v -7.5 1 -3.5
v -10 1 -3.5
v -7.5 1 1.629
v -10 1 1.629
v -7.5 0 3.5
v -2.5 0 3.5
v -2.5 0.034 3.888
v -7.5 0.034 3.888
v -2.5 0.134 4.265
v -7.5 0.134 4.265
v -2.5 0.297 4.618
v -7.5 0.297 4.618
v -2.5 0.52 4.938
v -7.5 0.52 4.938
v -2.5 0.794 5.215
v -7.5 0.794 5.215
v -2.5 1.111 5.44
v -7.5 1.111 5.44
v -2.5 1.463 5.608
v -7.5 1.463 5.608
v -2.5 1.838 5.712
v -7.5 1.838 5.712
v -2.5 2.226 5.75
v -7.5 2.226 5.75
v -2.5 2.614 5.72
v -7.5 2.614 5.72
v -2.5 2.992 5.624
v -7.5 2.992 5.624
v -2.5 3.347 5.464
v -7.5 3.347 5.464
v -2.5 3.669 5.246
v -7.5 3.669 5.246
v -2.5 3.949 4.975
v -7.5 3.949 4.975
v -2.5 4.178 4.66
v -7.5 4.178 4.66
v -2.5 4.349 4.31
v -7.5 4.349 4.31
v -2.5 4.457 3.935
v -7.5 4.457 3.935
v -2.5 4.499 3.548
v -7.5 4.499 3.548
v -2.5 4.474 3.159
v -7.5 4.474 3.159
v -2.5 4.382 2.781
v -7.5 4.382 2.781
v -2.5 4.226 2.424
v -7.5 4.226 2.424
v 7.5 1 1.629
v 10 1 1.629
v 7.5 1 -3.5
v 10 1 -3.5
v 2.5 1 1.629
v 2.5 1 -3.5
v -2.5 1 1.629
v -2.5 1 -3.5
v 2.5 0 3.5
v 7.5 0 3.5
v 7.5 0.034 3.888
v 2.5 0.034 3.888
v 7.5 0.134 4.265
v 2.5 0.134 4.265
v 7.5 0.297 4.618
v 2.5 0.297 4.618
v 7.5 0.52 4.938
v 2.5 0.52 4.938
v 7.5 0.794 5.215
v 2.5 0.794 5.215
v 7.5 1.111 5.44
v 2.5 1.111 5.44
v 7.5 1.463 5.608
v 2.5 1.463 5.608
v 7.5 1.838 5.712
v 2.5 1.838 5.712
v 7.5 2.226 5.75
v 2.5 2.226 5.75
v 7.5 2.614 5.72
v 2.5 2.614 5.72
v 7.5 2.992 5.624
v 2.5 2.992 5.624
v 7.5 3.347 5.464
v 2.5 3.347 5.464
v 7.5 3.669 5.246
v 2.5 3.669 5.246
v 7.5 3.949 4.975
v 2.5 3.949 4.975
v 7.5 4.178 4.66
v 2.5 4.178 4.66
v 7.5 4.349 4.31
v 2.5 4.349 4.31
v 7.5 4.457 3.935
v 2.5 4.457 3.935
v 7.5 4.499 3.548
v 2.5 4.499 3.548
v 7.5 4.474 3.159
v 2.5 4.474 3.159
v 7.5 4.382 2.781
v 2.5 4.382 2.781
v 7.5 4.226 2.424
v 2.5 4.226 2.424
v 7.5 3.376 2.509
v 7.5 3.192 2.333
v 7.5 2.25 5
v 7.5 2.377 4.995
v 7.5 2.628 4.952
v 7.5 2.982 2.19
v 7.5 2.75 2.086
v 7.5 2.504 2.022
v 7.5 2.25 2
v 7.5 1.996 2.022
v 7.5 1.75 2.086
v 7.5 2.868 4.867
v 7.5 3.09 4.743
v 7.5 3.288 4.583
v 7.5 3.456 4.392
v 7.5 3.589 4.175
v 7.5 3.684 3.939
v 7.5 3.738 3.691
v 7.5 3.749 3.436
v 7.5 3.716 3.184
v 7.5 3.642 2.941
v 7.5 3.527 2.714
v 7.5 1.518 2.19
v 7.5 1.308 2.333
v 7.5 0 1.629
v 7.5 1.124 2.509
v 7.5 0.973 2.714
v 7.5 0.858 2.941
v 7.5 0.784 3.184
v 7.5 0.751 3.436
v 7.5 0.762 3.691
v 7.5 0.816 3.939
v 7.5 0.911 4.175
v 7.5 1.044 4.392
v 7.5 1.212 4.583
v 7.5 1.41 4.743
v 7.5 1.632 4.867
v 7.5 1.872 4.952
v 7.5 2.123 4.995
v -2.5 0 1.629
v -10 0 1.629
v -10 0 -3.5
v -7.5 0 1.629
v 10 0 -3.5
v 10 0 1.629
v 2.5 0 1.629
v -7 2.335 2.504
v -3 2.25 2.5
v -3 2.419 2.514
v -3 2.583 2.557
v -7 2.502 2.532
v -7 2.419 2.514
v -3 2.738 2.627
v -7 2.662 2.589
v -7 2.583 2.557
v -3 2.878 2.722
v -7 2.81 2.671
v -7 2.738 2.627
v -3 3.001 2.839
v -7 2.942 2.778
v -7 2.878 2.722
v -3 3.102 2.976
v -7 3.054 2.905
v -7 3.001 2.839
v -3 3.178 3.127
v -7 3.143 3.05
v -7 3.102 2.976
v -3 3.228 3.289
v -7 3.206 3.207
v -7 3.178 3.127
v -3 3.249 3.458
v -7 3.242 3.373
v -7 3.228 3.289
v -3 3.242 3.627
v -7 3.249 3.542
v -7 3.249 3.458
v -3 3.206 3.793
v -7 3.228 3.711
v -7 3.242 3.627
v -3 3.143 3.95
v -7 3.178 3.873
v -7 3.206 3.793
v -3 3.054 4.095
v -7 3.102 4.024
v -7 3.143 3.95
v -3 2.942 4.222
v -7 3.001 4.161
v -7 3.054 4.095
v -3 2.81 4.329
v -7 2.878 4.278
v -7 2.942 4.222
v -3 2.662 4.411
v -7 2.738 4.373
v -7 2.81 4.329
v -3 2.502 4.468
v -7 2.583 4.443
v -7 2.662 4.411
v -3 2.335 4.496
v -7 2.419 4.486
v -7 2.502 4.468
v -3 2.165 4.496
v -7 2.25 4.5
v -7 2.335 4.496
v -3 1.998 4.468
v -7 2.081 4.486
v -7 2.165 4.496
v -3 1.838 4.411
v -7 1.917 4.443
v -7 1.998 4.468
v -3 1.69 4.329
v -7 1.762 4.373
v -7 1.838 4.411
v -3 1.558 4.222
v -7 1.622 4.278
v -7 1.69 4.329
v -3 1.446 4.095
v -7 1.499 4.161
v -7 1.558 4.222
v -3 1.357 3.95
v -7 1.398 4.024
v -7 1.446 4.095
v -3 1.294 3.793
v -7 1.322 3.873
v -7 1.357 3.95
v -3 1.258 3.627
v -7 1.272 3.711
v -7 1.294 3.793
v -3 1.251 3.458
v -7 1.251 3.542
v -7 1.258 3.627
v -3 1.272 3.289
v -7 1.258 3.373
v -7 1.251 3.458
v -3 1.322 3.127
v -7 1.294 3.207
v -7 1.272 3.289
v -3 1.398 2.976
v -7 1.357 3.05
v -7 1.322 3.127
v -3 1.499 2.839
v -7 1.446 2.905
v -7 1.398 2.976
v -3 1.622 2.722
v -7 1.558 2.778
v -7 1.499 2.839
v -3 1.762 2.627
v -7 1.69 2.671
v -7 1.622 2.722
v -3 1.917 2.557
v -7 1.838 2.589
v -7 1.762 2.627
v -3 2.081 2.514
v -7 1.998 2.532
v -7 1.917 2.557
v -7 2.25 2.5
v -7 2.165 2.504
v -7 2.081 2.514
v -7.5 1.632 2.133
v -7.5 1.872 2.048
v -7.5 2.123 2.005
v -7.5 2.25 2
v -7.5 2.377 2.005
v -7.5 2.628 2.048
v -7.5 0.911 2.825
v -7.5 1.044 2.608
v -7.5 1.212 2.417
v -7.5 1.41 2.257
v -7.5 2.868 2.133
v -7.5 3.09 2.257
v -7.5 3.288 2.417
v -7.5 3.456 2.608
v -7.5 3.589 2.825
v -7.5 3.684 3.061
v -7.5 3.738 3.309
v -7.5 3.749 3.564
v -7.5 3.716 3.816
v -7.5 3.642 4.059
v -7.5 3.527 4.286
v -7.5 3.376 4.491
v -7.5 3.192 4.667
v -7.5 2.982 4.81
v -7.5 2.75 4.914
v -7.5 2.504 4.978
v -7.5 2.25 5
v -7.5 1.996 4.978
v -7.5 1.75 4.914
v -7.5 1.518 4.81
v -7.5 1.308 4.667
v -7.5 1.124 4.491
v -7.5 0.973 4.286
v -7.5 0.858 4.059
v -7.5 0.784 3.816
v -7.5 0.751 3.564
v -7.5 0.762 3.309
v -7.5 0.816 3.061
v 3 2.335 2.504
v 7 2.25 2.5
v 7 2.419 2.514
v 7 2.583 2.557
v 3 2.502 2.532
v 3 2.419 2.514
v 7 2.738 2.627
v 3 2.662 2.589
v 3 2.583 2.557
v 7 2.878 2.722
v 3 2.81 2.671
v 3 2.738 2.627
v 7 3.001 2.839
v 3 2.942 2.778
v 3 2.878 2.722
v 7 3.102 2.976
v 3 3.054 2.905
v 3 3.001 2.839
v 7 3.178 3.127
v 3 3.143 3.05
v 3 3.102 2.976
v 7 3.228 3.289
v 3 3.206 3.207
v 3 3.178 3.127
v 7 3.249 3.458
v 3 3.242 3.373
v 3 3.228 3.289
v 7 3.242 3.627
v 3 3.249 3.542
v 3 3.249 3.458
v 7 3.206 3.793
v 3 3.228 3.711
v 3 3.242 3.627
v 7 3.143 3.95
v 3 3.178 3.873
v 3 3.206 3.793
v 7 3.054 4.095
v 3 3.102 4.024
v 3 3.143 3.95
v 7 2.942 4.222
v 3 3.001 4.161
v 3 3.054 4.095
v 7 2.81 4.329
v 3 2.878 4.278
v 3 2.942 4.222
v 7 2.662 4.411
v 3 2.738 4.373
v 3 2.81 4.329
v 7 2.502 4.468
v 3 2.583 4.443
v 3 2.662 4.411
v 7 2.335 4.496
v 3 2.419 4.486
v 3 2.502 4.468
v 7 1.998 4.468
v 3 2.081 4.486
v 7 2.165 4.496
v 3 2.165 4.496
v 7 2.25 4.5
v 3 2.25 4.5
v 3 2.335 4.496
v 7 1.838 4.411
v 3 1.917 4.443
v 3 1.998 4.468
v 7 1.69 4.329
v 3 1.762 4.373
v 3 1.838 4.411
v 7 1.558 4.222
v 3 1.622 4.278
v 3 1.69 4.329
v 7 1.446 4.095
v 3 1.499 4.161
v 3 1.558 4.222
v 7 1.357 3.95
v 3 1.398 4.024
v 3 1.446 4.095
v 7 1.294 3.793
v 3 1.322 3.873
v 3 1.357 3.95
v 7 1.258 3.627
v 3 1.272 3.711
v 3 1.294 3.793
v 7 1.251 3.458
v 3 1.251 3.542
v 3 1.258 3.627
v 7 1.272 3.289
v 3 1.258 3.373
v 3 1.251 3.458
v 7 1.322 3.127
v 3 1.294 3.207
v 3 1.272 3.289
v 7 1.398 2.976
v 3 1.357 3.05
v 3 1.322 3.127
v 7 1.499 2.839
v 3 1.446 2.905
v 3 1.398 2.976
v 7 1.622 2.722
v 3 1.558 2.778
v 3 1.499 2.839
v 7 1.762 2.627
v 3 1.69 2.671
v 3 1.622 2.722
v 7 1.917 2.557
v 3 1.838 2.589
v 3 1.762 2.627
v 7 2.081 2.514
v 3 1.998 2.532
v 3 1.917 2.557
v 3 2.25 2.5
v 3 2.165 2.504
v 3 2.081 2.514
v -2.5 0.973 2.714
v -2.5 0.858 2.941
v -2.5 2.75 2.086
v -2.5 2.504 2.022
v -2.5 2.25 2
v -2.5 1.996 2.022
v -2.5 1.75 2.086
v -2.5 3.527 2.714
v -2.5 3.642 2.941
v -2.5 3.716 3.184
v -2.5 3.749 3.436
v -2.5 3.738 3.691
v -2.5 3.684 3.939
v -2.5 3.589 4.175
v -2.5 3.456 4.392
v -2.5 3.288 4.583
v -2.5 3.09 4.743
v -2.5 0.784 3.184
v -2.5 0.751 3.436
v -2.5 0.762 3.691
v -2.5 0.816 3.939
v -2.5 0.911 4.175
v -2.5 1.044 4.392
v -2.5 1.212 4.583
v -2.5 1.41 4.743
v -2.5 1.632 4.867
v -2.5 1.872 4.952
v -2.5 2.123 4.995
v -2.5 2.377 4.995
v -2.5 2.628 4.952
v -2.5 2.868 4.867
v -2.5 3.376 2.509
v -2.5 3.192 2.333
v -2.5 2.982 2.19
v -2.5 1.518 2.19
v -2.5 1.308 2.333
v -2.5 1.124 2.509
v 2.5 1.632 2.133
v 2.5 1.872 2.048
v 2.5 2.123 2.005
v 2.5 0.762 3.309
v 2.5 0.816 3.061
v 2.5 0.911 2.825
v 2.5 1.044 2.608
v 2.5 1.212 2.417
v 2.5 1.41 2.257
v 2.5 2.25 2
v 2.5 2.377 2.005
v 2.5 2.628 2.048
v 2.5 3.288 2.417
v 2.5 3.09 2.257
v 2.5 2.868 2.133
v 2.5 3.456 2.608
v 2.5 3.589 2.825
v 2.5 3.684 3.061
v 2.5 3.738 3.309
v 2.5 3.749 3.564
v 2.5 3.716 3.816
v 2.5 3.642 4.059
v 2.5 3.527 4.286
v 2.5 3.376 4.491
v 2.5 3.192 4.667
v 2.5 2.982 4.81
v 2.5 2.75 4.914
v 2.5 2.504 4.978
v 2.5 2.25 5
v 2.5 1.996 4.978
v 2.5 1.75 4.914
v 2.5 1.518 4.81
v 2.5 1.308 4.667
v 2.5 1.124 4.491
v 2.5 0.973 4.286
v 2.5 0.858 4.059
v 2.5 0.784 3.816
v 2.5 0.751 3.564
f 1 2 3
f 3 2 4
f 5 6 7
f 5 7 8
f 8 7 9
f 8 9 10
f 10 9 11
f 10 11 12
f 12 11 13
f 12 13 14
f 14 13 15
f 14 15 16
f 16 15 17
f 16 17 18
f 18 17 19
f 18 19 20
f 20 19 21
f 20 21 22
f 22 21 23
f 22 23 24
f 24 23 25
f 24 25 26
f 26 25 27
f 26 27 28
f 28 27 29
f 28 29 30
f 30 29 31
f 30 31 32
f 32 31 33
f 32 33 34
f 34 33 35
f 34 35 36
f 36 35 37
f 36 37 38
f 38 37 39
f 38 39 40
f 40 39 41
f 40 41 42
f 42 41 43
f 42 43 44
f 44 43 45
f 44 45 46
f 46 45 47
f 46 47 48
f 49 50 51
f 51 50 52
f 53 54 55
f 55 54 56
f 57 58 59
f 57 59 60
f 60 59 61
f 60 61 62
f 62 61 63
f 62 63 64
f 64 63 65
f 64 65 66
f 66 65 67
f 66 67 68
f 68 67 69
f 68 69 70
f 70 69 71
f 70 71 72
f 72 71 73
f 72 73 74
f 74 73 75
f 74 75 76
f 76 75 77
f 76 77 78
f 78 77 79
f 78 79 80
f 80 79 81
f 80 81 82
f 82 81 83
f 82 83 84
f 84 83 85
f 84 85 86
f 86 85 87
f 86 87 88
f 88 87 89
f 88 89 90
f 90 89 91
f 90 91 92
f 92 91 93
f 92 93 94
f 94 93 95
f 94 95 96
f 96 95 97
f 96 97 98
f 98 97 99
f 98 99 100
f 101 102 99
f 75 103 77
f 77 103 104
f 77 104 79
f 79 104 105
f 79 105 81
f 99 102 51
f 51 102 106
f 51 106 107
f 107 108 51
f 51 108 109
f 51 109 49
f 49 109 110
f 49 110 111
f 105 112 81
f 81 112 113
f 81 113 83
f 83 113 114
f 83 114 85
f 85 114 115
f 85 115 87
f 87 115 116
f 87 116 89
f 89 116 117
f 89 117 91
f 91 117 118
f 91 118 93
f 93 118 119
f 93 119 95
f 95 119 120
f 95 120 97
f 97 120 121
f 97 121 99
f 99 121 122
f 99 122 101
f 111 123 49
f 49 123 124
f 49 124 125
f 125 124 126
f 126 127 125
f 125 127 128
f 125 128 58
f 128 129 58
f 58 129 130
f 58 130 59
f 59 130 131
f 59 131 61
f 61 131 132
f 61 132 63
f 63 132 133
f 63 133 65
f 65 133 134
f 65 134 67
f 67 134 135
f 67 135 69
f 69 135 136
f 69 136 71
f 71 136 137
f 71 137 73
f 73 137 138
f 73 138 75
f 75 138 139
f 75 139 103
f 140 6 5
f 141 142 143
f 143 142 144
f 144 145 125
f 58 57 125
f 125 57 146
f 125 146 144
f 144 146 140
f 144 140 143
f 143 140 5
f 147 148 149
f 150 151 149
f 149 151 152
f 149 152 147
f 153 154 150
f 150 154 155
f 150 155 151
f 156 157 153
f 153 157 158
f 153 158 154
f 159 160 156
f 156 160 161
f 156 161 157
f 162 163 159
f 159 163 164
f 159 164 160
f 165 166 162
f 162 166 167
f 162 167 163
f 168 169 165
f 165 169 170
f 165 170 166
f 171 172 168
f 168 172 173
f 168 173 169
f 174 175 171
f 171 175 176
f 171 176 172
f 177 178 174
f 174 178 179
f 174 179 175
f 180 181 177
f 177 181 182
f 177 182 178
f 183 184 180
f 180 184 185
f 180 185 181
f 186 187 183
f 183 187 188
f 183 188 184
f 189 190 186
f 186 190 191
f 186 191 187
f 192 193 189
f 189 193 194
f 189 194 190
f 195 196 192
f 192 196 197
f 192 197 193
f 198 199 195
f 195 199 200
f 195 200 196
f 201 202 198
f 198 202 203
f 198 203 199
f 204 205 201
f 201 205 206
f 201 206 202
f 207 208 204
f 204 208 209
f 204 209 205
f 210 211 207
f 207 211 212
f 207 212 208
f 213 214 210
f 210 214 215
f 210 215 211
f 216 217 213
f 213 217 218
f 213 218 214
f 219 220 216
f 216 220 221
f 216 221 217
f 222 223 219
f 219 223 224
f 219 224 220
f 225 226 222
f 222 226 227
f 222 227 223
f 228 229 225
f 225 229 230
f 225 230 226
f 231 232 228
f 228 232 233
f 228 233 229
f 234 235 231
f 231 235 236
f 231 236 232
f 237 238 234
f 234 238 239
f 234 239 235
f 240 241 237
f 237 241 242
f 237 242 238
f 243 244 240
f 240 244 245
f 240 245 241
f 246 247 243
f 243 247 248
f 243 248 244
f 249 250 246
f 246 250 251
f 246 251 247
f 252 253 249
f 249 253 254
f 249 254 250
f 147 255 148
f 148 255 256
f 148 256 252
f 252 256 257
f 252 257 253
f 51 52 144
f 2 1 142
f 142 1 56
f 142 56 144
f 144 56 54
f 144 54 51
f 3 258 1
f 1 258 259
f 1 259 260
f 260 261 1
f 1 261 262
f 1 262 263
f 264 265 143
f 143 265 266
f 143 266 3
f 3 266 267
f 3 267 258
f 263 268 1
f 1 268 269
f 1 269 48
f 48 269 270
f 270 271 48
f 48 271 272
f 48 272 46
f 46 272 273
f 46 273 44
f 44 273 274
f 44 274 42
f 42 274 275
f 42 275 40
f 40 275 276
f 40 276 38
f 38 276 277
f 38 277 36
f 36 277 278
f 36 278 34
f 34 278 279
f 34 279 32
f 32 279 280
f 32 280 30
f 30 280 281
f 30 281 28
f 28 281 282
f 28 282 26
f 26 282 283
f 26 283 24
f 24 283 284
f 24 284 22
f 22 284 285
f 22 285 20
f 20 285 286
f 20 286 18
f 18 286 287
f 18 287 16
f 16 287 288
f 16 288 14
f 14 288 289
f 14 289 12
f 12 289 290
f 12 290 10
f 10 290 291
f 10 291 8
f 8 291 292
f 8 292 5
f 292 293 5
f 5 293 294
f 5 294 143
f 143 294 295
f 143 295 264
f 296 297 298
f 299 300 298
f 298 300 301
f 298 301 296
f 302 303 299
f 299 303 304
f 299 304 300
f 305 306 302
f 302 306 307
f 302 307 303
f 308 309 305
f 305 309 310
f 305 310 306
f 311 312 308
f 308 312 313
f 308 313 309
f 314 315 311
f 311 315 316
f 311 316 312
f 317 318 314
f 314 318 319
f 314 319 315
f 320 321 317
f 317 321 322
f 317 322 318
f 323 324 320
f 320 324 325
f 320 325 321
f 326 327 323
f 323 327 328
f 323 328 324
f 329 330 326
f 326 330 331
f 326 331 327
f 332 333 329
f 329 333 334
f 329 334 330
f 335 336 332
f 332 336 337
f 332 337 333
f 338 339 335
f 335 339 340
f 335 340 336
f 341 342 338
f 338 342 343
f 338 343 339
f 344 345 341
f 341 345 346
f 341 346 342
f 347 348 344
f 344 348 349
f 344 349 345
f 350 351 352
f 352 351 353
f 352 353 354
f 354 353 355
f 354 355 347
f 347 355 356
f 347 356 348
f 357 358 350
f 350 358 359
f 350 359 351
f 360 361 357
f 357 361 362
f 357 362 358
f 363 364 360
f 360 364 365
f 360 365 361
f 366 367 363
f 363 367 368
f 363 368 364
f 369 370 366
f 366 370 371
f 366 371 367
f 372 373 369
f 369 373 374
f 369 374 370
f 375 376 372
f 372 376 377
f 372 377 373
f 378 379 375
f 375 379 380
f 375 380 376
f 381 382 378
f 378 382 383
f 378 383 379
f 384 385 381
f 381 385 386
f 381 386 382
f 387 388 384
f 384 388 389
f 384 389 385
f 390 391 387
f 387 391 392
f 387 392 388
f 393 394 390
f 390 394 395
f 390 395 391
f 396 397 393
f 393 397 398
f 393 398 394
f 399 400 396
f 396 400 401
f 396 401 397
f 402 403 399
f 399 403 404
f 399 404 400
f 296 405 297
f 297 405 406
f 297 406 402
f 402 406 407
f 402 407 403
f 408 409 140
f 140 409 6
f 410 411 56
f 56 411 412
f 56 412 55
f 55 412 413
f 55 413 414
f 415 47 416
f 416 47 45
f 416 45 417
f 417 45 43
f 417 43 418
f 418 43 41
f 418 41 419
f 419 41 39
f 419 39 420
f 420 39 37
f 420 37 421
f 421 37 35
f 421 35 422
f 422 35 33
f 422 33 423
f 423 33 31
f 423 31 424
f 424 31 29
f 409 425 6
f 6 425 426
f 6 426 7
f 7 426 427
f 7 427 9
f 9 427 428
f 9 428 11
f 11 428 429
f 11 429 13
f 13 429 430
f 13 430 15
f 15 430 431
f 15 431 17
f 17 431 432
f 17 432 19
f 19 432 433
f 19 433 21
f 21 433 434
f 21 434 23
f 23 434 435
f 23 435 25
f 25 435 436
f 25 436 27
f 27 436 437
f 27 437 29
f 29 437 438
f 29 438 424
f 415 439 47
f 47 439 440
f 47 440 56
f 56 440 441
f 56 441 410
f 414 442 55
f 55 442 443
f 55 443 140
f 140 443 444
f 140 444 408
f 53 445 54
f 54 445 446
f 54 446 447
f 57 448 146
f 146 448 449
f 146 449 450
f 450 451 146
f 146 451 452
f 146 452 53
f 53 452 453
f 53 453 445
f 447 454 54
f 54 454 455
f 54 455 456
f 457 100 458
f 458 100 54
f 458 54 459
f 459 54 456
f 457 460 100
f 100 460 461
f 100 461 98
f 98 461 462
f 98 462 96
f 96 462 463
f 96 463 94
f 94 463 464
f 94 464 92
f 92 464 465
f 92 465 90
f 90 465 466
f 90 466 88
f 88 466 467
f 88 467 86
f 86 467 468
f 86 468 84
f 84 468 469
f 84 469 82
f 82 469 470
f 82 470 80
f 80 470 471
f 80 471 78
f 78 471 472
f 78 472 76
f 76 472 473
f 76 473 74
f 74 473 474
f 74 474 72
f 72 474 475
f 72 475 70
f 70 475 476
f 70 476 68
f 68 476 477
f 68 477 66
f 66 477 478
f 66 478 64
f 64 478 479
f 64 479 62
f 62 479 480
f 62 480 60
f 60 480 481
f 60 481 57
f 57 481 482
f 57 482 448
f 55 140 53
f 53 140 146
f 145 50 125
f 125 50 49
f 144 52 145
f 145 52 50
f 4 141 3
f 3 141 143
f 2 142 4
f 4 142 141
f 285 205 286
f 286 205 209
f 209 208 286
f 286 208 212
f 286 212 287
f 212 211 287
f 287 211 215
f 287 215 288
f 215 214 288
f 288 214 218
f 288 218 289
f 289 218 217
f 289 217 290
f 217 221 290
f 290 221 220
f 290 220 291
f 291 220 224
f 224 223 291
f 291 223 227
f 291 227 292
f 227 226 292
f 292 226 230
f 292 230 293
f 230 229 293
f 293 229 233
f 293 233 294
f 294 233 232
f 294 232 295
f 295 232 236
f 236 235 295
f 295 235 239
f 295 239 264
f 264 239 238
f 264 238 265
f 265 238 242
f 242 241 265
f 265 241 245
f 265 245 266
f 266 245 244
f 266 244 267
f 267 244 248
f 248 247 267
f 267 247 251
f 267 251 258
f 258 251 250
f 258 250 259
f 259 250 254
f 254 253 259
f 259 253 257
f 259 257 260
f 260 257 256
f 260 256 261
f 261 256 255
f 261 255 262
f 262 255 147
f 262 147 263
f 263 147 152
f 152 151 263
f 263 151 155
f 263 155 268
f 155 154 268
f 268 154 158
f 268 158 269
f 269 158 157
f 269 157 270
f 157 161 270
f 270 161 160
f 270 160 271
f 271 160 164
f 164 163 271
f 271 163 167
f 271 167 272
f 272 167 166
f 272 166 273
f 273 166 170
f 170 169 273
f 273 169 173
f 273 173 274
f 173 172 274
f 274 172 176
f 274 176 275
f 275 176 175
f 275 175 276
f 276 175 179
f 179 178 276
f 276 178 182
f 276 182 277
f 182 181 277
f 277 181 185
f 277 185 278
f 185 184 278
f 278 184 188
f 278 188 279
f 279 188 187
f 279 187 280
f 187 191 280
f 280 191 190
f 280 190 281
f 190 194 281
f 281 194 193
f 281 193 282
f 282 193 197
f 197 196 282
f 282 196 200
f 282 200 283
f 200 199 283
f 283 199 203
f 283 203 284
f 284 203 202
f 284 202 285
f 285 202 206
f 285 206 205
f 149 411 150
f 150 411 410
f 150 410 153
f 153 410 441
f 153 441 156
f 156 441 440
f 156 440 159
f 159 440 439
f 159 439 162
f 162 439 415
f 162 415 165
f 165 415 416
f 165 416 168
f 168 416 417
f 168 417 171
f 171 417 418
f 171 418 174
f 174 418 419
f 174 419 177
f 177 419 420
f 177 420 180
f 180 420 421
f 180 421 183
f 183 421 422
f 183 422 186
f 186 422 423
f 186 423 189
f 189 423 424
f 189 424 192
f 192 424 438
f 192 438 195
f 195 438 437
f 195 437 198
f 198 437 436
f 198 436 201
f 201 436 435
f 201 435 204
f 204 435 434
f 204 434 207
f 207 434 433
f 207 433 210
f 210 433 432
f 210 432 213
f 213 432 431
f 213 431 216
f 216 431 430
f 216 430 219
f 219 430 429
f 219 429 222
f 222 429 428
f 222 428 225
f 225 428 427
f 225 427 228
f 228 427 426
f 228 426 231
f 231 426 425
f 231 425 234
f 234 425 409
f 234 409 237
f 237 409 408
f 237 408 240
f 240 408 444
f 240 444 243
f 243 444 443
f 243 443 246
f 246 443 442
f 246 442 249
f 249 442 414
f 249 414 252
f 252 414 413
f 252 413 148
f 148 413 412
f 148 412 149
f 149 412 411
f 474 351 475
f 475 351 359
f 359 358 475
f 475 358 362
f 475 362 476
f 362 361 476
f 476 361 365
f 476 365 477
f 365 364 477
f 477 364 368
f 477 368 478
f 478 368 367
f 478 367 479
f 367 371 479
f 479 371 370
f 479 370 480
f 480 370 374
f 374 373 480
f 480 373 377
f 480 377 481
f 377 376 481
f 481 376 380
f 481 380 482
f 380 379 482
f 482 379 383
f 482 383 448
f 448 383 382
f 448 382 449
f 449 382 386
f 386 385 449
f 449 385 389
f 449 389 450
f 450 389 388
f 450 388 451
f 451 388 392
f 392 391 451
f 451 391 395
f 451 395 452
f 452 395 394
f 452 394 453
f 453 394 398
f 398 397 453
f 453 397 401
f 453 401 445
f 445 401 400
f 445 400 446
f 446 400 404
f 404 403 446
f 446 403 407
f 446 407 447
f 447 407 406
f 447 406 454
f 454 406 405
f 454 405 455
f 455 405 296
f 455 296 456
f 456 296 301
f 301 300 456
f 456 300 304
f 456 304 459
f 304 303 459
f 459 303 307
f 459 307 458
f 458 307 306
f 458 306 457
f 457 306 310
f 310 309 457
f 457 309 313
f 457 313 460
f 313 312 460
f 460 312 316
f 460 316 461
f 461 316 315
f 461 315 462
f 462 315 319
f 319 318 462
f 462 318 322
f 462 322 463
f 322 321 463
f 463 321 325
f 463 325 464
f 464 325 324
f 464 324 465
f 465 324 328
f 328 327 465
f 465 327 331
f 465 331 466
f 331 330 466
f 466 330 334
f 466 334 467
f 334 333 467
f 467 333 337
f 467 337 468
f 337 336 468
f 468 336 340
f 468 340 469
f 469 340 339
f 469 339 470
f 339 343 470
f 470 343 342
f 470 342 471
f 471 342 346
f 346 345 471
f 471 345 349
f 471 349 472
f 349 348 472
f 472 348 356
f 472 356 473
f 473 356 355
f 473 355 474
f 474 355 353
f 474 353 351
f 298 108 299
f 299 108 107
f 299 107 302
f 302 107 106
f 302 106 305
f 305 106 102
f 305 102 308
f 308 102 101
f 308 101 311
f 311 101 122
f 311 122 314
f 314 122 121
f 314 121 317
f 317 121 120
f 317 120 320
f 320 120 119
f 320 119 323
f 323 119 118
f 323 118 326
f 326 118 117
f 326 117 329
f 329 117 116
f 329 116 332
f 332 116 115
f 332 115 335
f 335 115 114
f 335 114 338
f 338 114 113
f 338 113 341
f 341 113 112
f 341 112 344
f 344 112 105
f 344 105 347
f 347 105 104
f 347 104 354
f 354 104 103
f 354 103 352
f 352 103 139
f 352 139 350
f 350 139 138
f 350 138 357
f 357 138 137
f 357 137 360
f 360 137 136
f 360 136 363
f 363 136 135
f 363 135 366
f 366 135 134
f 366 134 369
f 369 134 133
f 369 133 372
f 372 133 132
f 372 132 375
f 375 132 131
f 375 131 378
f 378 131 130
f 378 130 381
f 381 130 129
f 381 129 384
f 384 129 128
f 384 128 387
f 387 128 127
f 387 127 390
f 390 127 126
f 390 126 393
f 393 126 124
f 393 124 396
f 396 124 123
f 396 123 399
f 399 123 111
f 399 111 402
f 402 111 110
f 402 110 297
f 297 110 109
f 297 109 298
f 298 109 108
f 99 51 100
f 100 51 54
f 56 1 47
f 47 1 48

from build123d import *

# Parameters (mm, degrees)
SKIZZE2_W                       = 15
SKIZZE2_H                       = 7
AUFSATZ_LINEAR_AUSTRAGEN1_DEPTH = 1
SKIZZE3_R                       = 2.25
SKIZZE3_R_2                     = 1
AUFSATZ_LINEAR_AUSTRAGEN2_DEPTH = 15
SCHNITT_LINEAR_START            = -5
SCHNITT_LINEAR_AUSTRAGEN1_DEPTH = 5
SKIZZE7_W                       = 5.129171307
SKIZZE7_H                       = 1
AUFSATZ_LINEAR_AUSTRAGEN3_DEPTH = 2.5
FASE1_SIZE                      = 0.5
VERST_RKUNGSFASE_DEPTH          = 5
AUFSATZ_LINEAR_AUSTRAGEN5_DEPTH = 5


with BuildPart() as part:
    # Skizze2 → Aufsatz-Linear austragen1 (new body)
    with BuildSketch(Plane(origin=(0, 0, 0), x_dir=(1, 0, 0), z_dir=(0, 1, 0))):
        Rectangle(SKIZZE2_W, SKIZZE2_H)
    extrude(amount=AUFSATZ_LINEAR_AUSTRAGEN1_DEPTH)

    # Skizze3 → Aufsatz-Linear austragen2 (add)
    with BuildSketch(Plane(origin=(7.5, 0, 0), x_dir=(0, 0, -1), z_dir=(1, 0, 0))):
        with Locations((-3.5, 2.25)):
            Circle(SKIZZE3_R)
        with Locations((-3.5, 2.25)):
            Circle(SKIZZE3_R_2, mode=Mode.SUBTRACT)
    extrude(amount=-AUFSATZ_LINEAR_AUSTRAGEN2_DEPTH)

    # Skizze5 → Schnitt-Linear austragen1 (cut)
    with BuildSketch(Plane(origin=(7.5, 0, 0), x_dir=(0, 0, -1), z_dir=(1, 0, 0)).offset(SCHNITT_LINEAR_START)):
        with BuildLine():
            Line((-1.629171307, 1), (-1.629171307, 0))
            Line((-1.629171307, 0), (-3.5, 0))
            ThreePointArc((-3.5, 0), (-4.560660172, 4.234313483), (-1.629171307, 1))
        make_face()
    extrude(amount=-SCHNITT_LINEAR_AUSTRAGEN1_DEPTH, mode=Mode.SUBTRACT)

    # Skizze7 → Aufsatz-Linear austragen3 (add)
    with BuildSketch(Plane(origin=(7.5, 0, 0), x_dir=(0, 0, -1), z_dir=(1, 0, 0))):
        with Locations((0.935414346, 0.5)):
            Rectangle(SKIZZE7_W, SKIZZE7_H)
    aufsatz_linear_austragen3 = extrude(amount=AUFSATZ_LINEAR_AUSTRAGEN3_DEPTH)

    # Spiegeln1: Aufsatz-Linear austragen3 across plane
    add(aufsatz_linear_austragen3.mirror(Plane(origin=(0, 0, 0), x_dir=(0, 0, 1), z_dir=(1, 0, 0))))

    # Fase1
    fase1_edges = [part.edges().sort_by_distance(p)[0] for p in [
        (-7.5, 2.25, 4.5),
        (7.5, 2.25, 4.5),
        (2.5, 2.25, 4.5),
        (-2.5, 2.25, 4.5),
    ]]
    chamfer(fase1_edges, length=FASE1_SIZE)

    # Skizze8 → Verstärkungsfase (add)
    with BuildSketch(Plane(origin=(7.5, 0, 0), x_dir=(0, 0, -1), z_dir=(1, 0, 0))):
        Polygon((-1.629171307, 1), (3.5, 1), (-2.423928807, 4.225998681), align=None)
    extrude(amount=-VERST_RKUNGSFASE_DEPTH)

    # Skizze9 → Aufsatz-Linear austragen5 (add)
    with BuildSketch(Plane.ZY.offset(7.5)):
        Polygon((1.629171307, 1), (-3.5, 1), (2.423928807, 4.225998681), align=None)
    extrude(amount=-AUFSATZ_LINEAR_AUSTRAGEN5_DEPTH)


solid = part.part
